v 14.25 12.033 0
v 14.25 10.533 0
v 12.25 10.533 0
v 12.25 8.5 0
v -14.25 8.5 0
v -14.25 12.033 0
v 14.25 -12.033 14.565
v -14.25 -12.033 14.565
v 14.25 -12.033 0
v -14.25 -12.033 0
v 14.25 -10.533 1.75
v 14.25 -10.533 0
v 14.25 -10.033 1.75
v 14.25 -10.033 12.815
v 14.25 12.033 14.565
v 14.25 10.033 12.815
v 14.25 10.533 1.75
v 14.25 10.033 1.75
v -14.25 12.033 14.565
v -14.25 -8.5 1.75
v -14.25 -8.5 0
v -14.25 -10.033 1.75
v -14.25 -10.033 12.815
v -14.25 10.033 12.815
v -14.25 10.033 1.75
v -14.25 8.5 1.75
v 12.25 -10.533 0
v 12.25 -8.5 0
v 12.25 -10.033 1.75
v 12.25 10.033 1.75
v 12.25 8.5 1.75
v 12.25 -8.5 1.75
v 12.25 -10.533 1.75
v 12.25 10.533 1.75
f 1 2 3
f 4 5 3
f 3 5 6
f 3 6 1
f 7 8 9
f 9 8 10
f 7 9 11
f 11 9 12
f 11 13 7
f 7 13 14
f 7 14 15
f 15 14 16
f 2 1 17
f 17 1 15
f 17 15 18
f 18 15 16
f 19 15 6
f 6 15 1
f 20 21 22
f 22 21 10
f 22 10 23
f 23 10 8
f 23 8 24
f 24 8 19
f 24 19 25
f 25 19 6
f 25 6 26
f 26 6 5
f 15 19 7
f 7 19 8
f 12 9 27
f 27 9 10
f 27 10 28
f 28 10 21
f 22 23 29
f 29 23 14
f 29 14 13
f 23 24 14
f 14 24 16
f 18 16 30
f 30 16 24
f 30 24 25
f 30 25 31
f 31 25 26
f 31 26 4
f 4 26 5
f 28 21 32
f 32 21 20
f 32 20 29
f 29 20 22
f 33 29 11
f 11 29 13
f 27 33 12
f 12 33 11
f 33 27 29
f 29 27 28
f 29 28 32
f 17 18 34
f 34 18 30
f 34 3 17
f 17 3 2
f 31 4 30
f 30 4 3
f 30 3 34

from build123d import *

# Parameters (mm, degrees)
SKETCH1_W           = 24.0664
SKETCH1_H           = 28.5
BOSS_EXTRUDE1_DEPTH = 14.5651
CUT_EXTRUDE1_DEPTH  = 35.193421008
CUT_EXTRUDE2_DEPTH  = 2


with BuildPart() as part:
    # Sketch1 → Boss-Extrude1 (new body)
    with BuildSketch(Plane(origin=(0, 0, 0), x_dir=(0, 1, 0), z_dir=(0, 0, 1))):
        Rectangle(SKETCH1_W, SKETCH1_H)
    extrude(amount=BOSS_EXTRUDE1_DEPTH)

    # Sketch2 → Cut-Extrude1 (cut, through all)
    with BuildSketch(Plane.YZ.offset(14.25)):
        Polygon((-10.0332, 12.8151), (10.0332, 12.8151), (10.0332, 1.75), (8.5, 1.75), (8.5, 0), (-8.5, 0), (-8.5, 1.75), (-10.0332, 1.75), align=None)
    extrude(amount=-CUT_EXTRUDE1_DEPTH, mode=Mode.SUBTRACT)

    # Sketch4 → Cut-Extrude2 (cut)
    with BuildSketch(Plane.YZ.offset(14.25)):
        Polygon((10.0332, 1.75), (10.5332, 1.75), (10.5332, 0), (8.5, 0), (8.5, 1.75), align=None)
        Polygon((-10.5332, 0), (-10.5332, 1.75), (-10.0332, 1.75), (-8.5, 1.75), (-8.5, 0), align=None)
    extrude(amount=-CUT_EXTRUDE2_DEPTH, mode=Mode.SUBTRACT)


solid = part.part
